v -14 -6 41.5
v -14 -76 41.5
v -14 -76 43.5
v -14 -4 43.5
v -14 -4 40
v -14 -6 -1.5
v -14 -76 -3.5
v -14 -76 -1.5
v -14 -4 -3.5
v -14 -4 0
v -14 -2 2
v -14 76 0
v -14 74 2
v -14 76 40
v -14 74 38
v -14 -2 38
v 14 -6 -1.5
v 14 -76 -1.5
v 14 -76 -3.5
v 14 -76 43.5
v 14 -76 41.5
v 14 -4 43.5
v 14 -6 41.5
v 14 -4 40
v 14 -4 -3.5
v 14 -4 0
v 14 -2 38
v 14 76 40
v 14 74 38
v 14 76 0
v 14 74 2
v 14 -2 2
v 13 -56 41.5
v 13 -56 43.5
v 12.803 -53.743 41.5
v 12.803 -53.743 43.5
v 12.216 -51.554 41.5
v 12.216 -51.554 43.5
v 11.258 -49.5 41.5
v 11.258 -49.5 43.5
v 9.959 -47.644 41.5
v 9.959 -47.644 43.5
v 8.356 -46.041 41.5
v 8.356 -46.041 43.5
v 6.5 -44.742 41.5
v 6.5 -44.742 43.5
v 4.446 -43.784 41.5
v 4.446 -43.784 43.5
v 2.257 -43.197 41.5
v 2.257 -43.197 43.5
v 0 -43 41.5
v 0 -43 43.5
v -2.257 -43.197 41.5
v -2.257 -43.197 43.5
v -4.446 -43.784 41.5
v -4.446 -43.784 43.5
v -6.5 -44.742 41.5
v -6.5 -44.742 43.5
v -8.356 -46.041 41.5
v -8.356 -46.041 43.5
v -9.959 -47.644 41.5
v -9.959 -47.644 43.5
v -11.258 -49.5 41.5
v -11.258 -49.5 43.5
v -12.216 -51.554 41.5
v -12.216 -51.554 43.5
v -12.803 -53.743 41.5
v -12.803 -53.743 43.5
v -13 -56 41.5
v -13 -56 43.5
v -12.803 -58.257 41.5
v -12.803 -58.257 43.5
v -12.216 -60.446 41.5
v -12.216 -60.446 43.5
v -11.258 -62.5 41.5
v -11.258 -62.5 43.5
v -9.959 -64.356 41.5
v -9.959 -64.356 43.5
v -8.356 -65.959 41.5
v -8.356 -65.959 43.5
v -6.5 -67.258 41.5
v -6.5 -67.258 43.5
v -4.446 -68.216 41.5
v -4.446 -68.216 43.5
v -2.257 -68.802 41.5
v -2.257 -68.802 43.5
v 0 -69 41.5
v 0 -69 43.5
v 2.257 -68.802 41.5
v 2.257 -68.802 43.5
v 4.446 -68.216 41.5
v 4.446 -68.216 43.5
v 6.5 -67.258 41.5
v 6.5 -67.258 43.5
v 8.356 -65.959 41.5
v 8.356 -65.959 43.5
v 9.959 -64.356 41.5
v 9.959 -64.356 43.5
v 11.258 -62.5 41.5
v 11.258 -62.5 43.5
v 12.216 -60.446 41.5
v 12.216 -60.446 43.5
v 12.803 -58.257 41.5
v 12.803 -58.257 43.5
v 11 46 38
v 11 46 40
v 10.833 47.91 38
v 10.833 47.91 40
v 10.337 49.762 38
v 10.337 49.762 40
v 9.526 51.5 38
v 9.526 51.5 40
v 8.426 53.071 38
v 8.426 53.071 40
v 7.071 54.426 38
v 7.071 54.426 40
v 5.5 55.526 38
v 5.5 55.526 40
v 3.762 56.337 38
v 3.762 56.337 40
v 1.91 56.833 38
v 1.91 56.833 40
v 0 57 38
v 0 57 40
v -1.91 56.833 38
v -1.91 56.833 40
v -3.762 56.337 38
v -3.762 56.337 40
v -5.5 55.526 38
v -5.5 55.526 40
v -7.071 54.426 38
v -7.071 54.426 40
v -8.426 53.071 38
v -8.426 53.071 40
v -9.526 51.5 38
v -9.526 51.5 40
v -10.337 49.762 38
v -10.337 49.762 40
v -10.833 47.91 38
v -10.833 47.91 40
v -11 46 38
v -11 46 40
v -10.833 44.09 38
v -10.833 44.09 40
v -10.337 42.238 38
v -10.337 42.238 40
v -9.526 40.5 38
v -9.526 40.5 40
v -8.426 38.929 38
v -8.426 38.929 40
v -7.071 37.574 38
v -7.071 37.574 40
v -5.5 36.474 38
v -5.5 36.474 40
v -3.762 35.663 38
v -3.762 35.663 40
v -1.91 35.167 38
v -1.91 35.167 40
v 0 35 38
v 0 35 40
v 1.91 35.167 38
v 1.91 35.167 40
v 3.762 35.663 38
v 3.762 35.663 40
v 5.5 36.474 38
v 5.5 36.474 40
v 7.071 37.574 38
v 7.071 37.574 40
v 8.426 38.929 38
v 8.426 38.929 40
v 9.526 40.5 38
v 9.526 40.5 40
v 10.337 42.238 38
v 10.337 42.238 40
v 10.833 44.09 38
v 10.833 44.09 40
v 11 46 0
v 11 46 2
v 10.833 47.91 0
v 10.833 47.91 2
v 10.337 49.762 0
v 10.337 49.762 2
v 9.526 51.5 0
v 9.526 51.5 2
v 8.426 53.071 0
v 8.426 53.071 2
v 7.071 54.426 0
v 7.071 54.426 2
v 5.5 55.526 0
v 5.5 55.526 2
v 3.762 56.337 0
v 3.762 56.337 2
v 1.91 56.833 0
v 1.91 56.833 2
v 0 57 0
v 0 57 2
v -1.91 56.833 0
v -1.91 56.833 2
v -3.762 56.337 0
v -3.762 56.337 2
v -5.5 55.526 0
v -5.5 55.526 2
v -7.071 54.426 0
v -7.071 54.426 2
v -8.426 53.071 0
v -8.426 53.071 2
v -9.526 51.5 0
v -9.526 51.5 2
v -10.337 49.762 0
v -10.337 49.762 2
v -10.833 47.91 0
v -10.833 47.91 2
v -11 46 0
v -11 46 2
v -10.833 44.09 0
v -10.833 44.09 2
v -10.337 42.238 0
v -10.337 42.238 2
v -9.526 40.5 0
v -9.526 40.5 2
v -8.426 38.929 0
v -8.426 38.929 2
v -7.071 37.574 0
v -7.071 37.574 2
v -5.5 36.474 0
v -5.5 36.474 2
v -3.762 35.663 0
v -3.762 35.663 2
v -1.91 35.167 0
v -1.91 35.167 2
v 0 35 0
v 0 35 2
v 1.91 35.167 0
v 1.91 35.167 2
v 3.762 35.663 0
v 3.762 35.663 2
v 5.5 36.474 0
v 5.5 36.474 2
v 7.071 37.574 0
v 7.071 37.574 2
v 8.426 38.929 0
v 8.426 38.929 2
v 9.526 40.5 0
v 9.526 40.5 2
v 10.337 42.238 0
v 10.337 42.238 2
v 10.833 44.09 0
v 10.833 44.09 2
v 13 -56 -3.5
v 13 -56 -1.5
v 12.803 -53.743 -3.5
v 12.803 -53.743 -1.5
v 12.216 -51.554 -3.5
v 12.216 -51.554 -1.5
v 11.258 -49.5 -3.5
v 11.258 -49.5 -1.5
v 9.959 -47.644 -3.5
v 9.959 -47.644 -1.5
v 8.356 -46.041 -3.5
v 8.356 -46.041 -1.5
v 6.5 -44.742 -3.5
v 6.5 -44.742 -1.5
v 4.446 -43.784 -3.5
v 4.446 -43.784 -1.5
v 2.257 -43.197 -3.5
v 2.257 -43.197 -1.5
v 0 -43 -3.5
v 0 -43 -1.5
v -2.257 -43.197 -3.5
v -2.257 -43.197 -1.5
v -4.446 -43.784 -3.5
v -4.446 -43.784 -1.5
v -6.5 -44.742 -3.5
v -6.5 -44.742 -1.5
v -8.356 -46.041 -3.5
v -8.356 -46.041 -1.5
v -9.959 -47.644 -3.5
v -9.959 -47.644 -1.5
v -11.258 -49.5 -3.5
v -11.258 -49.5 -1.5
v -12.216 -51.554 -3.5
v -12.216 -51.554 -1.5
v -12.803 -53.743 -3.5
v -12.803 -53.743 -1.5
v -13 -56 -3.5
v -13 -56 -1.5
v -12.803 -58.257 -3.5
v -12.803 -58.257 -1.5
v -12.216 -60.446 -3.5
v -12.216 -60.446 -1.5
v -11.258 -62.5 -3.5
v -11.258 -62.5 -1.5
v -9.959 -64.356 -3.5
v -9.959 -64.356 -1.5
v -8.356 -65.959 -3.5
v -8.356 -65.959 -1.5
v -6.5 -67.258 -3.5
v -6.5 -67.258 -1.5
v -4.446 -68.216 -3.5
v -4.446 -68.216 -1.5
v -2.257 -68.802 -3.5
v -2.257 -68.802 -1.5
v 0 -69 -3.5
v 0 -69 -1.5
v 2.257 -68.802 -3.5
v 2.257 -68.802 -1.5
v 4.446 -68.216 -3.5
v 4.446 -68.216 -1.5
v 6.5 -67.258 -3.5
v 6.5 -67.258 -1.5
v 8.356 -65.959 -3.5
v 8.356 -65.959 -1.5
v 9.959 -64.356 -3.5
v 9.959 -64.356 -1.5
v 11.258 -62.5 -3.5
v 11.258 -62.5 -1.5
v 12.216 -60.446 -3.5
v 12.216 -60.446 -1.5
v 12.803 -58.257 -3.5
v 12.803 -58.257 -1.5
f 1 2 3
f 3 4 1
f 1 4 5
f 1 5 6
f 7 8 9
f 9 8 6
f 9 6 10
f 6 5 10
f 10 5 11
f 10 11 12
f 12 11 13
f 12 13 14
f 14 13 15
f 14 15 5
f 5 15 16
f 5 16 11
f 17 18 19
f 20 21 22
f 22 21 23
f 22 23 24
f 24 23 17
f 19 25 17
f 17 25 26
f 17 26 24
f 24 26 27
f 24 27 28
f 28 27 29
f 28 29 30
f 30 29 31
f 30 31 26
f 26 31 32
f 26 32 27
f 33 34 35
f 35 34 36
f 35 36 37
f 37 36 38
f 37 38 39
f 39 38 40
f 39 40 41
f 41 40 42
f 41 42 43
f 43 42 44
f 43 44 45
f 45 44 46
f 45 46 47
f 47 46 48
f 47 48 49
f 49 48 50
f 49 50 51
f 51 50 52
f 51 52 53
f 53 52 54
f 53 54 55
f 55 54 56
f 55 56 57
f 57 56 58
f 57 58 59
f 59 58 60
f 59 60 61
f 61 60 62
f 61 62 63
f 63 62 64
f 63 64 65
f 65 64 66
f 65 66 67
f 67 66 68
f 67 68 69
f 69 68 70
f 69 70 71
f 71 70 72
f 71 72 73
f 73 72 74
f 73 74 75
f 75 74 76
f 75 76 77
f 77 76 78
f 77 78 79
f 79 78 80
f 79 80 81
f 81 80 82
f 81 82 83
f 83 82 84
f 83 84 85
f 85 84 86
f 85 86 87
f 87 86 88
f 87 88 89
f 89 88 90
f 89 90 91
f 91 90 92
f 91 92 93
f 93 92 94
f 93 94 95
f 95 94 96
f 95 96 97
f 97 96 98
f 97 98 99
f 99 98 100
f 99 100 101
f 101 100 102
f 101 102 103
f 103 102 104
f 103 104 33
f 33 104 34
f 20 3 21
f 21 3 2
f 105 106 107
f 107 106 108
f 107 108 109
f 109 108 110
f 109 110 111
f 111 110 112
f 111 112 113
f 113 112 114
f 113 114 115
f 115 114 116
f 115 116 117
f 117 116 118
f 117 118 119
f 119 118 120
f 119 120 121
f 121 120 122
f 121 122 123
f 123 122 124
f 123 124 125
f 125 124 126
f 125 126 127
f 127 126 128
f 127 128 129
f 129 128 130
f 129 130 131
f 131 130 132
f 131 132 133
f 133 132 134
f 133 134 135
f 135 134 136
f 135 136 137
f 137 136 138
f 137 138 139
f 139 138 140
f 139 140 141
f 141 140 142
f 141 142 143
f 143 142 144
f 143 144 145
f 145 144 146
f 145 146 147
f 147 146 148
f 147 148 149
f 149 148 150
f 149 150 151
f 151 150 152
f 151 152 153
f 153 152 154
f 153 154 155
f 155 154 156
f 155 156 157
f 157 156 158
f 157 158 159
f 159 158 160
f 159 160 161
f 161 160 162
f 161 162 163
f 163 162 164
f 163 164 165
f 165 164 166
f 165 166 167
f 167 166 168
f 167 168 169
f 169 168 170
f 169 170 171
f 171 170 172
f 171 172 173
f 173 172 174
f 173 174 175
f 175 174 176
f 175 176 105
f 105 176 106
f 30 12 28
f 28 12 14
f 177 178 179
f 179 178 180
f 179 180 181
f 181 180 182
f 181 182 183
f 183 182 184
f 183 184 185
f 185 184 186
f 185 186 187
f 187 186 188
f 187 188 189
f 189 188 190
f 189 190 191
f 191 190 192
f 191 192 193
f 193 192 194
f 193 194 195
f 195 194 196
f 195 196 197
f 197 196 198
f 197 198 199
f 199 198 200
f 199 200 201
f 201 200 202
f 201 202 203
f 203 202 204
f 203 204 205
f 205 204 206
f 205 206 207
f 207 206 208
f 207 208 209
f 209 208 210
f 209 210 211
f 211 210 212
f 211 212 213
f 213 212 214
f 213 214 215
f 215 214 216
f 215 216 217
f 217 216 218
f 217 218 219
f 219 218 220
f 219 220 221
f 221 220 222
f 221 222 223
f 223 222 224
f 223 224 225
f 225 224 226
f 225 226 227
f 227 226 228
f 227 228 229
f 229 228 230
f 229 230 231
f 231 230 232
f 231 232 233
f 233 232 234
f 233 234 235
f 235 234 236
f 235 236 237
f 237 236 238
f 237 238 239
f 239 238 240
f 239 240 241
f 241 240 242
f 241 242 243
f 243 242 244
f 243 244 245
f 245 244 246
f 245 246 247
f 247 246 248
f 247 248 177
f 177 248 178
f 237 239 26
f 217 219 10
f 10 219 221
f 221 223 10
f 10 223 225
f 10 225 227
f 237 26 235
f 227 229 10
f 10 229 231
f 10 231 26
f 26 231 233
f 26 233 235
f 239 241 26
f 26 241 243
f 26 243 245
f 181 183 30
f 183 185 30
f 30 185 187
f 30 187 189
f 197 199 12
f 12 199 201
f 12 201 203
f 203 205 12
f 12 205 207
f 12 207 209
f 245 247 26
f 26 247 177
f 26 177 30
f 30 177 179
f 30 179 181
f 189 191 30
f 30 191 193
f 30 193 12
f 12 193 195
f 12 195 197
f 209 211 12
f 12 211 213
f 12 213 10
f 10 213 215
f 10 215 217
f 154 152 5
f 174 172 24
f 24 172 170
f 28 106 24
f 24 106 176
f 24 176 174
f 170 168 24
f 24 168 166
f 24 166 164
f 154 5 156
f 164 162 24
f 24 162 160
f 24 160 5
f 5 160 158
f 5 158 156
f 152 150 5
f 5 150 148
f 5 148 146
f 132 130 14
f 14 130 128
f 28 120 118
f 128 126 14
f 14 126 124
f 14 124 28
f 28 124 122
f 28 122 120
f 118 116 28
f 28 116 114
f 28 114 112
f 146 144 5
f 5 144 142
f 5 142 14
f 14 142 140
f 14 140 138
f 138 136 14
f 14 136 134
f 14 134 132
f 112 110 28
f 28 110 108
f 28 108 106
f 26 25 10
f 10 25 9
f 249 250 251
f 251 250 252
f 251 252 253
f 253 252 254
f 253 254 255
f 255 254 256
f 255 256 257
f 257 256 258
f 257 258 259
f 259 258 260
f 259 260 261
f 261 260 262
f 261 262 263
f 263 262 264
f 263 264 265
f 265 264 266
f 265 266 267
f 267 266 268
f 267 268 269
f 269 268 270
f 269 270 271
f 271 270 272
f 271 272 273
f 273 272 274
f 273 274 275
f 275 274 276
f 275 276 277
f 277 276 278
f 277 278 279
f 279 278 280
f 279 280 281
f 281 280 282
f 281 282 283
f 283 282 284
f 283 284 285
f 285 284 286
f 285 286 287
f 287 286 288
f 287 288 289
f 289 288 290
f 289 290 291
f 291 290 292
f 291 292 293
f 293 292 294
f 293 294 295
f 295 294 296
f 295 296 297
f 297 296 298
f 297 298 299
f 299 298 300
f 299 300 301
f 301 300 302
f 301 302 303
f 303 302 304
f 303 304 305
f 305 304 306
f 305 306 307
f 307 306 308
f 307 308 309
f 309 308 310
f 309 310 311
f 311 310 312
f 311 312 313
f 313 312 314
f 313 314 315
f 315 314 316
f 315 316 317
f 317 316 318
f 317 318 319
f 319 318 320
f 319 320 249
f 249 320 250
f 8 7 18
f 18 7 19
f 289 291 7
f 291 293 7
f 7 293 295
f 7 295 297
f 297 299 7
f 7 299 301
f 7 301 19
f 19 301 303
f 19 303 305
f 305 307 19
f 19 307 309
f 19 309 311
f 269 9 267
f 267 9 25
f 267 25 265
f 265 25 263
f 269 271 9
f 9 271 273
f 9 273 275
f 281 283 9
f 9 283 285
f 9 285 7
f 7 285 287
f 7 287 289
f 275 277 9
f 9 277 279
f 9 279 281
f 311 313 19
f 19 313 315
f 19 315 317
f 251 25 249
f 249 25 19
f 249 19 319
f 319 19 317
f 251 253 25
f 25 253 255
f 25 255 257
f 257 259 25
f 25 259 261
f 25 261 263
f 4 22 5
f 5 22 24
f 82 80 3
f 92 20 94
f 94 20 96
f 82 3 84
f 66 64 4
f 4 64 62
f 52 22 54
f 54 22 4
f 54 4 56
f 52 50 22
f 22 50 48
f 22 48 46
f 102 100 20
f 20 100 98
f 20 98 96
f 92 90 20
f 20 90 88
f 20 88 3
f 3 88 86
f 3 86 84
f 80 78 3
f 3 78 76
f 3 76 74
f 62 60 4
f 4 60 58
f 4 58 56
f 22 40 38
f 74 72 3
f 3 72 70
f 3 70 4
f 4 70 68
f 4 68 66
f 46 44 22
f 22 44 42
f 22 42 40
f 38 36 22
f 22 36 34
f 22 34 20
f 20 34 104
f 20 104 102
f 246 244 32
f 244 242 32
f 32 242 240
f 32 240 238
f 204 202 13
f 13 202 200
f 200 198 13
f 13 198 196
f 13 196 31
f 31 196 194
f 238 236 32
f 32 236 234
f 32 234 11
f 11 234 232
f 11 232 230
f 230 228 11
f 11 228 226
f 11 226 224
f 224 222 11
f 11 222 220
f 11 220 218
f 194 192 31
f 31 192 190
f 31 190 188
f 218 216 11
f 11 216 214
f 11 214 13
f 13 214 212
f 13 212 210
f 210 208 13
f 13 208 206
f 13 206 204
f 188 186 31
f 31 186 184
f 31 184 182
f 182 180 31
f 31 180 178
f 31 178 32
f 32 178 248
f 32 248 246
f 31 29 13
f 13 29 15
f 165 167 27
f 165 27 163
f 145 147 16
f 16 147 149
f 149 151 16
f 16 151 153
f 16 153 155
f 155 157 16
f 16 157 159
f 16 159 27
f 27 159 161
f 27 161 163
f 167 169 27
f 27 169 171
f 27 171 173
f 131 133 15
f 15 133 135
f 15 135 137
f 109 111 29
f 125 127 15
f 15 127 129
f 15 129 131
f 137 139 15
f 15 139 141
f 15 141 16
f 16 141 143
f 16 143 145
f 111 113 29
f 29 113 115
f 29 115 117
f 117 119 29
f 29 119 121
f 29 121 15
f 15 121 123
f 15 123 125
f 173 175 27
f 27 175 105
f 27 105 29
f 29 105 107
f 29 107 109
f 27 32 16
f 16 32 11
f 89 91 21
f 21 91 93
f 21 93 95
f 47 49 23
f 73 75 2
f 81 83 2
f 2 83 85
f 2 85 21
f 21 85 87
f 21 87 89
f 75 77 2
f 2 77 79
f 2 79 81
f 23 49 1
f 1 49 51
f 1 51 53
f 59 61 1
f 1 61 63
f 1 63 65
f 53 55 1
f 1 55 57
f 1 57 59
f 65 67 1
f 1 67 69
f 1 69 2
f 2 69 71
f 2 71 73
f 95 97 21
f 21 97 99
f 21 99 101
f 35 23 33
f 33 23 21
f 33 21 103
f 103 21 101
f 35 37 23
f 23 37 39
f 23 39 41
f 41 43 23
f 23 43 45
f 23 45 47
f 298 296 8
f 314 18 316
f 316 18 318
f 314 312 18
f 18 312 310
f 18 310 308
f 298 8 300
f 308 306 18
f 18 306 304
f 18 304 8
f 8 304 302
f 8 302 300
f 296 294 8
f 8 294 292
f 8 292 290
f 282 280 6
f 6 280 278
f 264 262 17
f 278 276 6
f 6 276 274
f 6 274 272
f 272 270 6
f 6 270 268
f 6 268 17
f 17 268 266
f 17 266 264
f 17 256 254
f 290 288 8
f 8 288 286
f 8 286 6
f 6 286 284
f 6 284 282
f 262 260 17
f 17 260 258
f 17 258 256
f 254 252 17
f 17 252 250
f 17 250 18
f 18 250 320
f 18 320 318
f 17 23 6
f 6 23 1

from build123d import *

# Parameters (mm, degrees)
SKETCH1_W           = 28
SKETCH1_H           = 80
SKETCH1_R           = 11
BOSS_EXTRUDE1_DEPTH = 40
SKETCH1_4_W         = 28
SKETCH1_4_H         = 72
SKETCH1_4_R         = 13
BOSS_EXTRUDE2_DEPTH = 43.5
BOSS_EXTRUDE3_START = -3.5
SKETCH1_5_W         = 28
SKETCH1_5_H         = 72
SKETCH1_5_R         = 13
BOSS_EXTRUDE3_DEPTH = 3.5
SKETCH3_W           = 36
SKETCH3_H           = 76
CUT_EXTRUDE1_DEPTH  = 28
SKETCH3_4_W         = 43
SKETCH3_4_H         = 70
CUT_EXTRUDE2_DEPTH  = 28


with BuildPart() as part:
    # Sketch1 → Boss-Extrude1 (new body)
    with BuildSketch(Plane.XY):
        with Locations((0, 36)):
            Rectangle(SKETCH1_W, SKETCH1_H)
        with Locations((0, 46)):
            Circle(SKETCH1_R, mode=Mode.SUBTRACT)
    extrude(amount=BOSS_EXTRUDE1_DEPTH)

    # Sketch1<4> → Boss-Extrude2 (add)
    with BuildSketch(Plane.XY):
        with Locations((0, -40)):
            Rectangle(SKETCH1_4_W, SKETCH1_4_H)
        with Locations((0, -56)):
            Circle(SKETCH1_4_R, mode=Mode.SUBTRACT)
    extrude(amount=BOSS_EXTRUDE2_DEPTH)

    # Sketch1<5> → Boss-Extrude3 (add)
    with BuildSketch(Plane.XY.offset(BOSS_EXTRUDE3_START)):
        with Locations((0, -40)):
            Rectangle(SKETCH1_5_W, SKETCH1_5_H)
        with Locations((0, -56)):
            Circle(SKETCH1_5_R, mode=Mode.SUBTRACT)
    extrude(amount=BOSS_EXTRUDE3_DEPTH)

    # Sketch3 → Cut-Extrude1 (cut)
    with BuildSketch(Plane(origin=(14, 0, 0), x_dir=(0, 0, -1), z_dir=(1, 0, 0))):
        with Locations((-20, 36)):
            Rectangle(SKETCH3_W, SKETCH3_H)
    extrude(amount=-CUT_EXTRUDE1_DEPTH, mode=Mode.SUBTRACT)

    # Sketch3<4> → Cut-Extrude2 (cut)
    with BuildSketch(Plane(origin=(14, 0, 0), x_dir=(0, 0, -1), z_dir=(1, 0, 0))):
        with Locations((-20, -41)):
            Rectangle(SKETCH3_4_W, SKETCH3_4_H)
    extrude(amount=-CUT_EXTRUDE2_DEPTH, mode=Mode.SUBTRACT)


solid = part.part
